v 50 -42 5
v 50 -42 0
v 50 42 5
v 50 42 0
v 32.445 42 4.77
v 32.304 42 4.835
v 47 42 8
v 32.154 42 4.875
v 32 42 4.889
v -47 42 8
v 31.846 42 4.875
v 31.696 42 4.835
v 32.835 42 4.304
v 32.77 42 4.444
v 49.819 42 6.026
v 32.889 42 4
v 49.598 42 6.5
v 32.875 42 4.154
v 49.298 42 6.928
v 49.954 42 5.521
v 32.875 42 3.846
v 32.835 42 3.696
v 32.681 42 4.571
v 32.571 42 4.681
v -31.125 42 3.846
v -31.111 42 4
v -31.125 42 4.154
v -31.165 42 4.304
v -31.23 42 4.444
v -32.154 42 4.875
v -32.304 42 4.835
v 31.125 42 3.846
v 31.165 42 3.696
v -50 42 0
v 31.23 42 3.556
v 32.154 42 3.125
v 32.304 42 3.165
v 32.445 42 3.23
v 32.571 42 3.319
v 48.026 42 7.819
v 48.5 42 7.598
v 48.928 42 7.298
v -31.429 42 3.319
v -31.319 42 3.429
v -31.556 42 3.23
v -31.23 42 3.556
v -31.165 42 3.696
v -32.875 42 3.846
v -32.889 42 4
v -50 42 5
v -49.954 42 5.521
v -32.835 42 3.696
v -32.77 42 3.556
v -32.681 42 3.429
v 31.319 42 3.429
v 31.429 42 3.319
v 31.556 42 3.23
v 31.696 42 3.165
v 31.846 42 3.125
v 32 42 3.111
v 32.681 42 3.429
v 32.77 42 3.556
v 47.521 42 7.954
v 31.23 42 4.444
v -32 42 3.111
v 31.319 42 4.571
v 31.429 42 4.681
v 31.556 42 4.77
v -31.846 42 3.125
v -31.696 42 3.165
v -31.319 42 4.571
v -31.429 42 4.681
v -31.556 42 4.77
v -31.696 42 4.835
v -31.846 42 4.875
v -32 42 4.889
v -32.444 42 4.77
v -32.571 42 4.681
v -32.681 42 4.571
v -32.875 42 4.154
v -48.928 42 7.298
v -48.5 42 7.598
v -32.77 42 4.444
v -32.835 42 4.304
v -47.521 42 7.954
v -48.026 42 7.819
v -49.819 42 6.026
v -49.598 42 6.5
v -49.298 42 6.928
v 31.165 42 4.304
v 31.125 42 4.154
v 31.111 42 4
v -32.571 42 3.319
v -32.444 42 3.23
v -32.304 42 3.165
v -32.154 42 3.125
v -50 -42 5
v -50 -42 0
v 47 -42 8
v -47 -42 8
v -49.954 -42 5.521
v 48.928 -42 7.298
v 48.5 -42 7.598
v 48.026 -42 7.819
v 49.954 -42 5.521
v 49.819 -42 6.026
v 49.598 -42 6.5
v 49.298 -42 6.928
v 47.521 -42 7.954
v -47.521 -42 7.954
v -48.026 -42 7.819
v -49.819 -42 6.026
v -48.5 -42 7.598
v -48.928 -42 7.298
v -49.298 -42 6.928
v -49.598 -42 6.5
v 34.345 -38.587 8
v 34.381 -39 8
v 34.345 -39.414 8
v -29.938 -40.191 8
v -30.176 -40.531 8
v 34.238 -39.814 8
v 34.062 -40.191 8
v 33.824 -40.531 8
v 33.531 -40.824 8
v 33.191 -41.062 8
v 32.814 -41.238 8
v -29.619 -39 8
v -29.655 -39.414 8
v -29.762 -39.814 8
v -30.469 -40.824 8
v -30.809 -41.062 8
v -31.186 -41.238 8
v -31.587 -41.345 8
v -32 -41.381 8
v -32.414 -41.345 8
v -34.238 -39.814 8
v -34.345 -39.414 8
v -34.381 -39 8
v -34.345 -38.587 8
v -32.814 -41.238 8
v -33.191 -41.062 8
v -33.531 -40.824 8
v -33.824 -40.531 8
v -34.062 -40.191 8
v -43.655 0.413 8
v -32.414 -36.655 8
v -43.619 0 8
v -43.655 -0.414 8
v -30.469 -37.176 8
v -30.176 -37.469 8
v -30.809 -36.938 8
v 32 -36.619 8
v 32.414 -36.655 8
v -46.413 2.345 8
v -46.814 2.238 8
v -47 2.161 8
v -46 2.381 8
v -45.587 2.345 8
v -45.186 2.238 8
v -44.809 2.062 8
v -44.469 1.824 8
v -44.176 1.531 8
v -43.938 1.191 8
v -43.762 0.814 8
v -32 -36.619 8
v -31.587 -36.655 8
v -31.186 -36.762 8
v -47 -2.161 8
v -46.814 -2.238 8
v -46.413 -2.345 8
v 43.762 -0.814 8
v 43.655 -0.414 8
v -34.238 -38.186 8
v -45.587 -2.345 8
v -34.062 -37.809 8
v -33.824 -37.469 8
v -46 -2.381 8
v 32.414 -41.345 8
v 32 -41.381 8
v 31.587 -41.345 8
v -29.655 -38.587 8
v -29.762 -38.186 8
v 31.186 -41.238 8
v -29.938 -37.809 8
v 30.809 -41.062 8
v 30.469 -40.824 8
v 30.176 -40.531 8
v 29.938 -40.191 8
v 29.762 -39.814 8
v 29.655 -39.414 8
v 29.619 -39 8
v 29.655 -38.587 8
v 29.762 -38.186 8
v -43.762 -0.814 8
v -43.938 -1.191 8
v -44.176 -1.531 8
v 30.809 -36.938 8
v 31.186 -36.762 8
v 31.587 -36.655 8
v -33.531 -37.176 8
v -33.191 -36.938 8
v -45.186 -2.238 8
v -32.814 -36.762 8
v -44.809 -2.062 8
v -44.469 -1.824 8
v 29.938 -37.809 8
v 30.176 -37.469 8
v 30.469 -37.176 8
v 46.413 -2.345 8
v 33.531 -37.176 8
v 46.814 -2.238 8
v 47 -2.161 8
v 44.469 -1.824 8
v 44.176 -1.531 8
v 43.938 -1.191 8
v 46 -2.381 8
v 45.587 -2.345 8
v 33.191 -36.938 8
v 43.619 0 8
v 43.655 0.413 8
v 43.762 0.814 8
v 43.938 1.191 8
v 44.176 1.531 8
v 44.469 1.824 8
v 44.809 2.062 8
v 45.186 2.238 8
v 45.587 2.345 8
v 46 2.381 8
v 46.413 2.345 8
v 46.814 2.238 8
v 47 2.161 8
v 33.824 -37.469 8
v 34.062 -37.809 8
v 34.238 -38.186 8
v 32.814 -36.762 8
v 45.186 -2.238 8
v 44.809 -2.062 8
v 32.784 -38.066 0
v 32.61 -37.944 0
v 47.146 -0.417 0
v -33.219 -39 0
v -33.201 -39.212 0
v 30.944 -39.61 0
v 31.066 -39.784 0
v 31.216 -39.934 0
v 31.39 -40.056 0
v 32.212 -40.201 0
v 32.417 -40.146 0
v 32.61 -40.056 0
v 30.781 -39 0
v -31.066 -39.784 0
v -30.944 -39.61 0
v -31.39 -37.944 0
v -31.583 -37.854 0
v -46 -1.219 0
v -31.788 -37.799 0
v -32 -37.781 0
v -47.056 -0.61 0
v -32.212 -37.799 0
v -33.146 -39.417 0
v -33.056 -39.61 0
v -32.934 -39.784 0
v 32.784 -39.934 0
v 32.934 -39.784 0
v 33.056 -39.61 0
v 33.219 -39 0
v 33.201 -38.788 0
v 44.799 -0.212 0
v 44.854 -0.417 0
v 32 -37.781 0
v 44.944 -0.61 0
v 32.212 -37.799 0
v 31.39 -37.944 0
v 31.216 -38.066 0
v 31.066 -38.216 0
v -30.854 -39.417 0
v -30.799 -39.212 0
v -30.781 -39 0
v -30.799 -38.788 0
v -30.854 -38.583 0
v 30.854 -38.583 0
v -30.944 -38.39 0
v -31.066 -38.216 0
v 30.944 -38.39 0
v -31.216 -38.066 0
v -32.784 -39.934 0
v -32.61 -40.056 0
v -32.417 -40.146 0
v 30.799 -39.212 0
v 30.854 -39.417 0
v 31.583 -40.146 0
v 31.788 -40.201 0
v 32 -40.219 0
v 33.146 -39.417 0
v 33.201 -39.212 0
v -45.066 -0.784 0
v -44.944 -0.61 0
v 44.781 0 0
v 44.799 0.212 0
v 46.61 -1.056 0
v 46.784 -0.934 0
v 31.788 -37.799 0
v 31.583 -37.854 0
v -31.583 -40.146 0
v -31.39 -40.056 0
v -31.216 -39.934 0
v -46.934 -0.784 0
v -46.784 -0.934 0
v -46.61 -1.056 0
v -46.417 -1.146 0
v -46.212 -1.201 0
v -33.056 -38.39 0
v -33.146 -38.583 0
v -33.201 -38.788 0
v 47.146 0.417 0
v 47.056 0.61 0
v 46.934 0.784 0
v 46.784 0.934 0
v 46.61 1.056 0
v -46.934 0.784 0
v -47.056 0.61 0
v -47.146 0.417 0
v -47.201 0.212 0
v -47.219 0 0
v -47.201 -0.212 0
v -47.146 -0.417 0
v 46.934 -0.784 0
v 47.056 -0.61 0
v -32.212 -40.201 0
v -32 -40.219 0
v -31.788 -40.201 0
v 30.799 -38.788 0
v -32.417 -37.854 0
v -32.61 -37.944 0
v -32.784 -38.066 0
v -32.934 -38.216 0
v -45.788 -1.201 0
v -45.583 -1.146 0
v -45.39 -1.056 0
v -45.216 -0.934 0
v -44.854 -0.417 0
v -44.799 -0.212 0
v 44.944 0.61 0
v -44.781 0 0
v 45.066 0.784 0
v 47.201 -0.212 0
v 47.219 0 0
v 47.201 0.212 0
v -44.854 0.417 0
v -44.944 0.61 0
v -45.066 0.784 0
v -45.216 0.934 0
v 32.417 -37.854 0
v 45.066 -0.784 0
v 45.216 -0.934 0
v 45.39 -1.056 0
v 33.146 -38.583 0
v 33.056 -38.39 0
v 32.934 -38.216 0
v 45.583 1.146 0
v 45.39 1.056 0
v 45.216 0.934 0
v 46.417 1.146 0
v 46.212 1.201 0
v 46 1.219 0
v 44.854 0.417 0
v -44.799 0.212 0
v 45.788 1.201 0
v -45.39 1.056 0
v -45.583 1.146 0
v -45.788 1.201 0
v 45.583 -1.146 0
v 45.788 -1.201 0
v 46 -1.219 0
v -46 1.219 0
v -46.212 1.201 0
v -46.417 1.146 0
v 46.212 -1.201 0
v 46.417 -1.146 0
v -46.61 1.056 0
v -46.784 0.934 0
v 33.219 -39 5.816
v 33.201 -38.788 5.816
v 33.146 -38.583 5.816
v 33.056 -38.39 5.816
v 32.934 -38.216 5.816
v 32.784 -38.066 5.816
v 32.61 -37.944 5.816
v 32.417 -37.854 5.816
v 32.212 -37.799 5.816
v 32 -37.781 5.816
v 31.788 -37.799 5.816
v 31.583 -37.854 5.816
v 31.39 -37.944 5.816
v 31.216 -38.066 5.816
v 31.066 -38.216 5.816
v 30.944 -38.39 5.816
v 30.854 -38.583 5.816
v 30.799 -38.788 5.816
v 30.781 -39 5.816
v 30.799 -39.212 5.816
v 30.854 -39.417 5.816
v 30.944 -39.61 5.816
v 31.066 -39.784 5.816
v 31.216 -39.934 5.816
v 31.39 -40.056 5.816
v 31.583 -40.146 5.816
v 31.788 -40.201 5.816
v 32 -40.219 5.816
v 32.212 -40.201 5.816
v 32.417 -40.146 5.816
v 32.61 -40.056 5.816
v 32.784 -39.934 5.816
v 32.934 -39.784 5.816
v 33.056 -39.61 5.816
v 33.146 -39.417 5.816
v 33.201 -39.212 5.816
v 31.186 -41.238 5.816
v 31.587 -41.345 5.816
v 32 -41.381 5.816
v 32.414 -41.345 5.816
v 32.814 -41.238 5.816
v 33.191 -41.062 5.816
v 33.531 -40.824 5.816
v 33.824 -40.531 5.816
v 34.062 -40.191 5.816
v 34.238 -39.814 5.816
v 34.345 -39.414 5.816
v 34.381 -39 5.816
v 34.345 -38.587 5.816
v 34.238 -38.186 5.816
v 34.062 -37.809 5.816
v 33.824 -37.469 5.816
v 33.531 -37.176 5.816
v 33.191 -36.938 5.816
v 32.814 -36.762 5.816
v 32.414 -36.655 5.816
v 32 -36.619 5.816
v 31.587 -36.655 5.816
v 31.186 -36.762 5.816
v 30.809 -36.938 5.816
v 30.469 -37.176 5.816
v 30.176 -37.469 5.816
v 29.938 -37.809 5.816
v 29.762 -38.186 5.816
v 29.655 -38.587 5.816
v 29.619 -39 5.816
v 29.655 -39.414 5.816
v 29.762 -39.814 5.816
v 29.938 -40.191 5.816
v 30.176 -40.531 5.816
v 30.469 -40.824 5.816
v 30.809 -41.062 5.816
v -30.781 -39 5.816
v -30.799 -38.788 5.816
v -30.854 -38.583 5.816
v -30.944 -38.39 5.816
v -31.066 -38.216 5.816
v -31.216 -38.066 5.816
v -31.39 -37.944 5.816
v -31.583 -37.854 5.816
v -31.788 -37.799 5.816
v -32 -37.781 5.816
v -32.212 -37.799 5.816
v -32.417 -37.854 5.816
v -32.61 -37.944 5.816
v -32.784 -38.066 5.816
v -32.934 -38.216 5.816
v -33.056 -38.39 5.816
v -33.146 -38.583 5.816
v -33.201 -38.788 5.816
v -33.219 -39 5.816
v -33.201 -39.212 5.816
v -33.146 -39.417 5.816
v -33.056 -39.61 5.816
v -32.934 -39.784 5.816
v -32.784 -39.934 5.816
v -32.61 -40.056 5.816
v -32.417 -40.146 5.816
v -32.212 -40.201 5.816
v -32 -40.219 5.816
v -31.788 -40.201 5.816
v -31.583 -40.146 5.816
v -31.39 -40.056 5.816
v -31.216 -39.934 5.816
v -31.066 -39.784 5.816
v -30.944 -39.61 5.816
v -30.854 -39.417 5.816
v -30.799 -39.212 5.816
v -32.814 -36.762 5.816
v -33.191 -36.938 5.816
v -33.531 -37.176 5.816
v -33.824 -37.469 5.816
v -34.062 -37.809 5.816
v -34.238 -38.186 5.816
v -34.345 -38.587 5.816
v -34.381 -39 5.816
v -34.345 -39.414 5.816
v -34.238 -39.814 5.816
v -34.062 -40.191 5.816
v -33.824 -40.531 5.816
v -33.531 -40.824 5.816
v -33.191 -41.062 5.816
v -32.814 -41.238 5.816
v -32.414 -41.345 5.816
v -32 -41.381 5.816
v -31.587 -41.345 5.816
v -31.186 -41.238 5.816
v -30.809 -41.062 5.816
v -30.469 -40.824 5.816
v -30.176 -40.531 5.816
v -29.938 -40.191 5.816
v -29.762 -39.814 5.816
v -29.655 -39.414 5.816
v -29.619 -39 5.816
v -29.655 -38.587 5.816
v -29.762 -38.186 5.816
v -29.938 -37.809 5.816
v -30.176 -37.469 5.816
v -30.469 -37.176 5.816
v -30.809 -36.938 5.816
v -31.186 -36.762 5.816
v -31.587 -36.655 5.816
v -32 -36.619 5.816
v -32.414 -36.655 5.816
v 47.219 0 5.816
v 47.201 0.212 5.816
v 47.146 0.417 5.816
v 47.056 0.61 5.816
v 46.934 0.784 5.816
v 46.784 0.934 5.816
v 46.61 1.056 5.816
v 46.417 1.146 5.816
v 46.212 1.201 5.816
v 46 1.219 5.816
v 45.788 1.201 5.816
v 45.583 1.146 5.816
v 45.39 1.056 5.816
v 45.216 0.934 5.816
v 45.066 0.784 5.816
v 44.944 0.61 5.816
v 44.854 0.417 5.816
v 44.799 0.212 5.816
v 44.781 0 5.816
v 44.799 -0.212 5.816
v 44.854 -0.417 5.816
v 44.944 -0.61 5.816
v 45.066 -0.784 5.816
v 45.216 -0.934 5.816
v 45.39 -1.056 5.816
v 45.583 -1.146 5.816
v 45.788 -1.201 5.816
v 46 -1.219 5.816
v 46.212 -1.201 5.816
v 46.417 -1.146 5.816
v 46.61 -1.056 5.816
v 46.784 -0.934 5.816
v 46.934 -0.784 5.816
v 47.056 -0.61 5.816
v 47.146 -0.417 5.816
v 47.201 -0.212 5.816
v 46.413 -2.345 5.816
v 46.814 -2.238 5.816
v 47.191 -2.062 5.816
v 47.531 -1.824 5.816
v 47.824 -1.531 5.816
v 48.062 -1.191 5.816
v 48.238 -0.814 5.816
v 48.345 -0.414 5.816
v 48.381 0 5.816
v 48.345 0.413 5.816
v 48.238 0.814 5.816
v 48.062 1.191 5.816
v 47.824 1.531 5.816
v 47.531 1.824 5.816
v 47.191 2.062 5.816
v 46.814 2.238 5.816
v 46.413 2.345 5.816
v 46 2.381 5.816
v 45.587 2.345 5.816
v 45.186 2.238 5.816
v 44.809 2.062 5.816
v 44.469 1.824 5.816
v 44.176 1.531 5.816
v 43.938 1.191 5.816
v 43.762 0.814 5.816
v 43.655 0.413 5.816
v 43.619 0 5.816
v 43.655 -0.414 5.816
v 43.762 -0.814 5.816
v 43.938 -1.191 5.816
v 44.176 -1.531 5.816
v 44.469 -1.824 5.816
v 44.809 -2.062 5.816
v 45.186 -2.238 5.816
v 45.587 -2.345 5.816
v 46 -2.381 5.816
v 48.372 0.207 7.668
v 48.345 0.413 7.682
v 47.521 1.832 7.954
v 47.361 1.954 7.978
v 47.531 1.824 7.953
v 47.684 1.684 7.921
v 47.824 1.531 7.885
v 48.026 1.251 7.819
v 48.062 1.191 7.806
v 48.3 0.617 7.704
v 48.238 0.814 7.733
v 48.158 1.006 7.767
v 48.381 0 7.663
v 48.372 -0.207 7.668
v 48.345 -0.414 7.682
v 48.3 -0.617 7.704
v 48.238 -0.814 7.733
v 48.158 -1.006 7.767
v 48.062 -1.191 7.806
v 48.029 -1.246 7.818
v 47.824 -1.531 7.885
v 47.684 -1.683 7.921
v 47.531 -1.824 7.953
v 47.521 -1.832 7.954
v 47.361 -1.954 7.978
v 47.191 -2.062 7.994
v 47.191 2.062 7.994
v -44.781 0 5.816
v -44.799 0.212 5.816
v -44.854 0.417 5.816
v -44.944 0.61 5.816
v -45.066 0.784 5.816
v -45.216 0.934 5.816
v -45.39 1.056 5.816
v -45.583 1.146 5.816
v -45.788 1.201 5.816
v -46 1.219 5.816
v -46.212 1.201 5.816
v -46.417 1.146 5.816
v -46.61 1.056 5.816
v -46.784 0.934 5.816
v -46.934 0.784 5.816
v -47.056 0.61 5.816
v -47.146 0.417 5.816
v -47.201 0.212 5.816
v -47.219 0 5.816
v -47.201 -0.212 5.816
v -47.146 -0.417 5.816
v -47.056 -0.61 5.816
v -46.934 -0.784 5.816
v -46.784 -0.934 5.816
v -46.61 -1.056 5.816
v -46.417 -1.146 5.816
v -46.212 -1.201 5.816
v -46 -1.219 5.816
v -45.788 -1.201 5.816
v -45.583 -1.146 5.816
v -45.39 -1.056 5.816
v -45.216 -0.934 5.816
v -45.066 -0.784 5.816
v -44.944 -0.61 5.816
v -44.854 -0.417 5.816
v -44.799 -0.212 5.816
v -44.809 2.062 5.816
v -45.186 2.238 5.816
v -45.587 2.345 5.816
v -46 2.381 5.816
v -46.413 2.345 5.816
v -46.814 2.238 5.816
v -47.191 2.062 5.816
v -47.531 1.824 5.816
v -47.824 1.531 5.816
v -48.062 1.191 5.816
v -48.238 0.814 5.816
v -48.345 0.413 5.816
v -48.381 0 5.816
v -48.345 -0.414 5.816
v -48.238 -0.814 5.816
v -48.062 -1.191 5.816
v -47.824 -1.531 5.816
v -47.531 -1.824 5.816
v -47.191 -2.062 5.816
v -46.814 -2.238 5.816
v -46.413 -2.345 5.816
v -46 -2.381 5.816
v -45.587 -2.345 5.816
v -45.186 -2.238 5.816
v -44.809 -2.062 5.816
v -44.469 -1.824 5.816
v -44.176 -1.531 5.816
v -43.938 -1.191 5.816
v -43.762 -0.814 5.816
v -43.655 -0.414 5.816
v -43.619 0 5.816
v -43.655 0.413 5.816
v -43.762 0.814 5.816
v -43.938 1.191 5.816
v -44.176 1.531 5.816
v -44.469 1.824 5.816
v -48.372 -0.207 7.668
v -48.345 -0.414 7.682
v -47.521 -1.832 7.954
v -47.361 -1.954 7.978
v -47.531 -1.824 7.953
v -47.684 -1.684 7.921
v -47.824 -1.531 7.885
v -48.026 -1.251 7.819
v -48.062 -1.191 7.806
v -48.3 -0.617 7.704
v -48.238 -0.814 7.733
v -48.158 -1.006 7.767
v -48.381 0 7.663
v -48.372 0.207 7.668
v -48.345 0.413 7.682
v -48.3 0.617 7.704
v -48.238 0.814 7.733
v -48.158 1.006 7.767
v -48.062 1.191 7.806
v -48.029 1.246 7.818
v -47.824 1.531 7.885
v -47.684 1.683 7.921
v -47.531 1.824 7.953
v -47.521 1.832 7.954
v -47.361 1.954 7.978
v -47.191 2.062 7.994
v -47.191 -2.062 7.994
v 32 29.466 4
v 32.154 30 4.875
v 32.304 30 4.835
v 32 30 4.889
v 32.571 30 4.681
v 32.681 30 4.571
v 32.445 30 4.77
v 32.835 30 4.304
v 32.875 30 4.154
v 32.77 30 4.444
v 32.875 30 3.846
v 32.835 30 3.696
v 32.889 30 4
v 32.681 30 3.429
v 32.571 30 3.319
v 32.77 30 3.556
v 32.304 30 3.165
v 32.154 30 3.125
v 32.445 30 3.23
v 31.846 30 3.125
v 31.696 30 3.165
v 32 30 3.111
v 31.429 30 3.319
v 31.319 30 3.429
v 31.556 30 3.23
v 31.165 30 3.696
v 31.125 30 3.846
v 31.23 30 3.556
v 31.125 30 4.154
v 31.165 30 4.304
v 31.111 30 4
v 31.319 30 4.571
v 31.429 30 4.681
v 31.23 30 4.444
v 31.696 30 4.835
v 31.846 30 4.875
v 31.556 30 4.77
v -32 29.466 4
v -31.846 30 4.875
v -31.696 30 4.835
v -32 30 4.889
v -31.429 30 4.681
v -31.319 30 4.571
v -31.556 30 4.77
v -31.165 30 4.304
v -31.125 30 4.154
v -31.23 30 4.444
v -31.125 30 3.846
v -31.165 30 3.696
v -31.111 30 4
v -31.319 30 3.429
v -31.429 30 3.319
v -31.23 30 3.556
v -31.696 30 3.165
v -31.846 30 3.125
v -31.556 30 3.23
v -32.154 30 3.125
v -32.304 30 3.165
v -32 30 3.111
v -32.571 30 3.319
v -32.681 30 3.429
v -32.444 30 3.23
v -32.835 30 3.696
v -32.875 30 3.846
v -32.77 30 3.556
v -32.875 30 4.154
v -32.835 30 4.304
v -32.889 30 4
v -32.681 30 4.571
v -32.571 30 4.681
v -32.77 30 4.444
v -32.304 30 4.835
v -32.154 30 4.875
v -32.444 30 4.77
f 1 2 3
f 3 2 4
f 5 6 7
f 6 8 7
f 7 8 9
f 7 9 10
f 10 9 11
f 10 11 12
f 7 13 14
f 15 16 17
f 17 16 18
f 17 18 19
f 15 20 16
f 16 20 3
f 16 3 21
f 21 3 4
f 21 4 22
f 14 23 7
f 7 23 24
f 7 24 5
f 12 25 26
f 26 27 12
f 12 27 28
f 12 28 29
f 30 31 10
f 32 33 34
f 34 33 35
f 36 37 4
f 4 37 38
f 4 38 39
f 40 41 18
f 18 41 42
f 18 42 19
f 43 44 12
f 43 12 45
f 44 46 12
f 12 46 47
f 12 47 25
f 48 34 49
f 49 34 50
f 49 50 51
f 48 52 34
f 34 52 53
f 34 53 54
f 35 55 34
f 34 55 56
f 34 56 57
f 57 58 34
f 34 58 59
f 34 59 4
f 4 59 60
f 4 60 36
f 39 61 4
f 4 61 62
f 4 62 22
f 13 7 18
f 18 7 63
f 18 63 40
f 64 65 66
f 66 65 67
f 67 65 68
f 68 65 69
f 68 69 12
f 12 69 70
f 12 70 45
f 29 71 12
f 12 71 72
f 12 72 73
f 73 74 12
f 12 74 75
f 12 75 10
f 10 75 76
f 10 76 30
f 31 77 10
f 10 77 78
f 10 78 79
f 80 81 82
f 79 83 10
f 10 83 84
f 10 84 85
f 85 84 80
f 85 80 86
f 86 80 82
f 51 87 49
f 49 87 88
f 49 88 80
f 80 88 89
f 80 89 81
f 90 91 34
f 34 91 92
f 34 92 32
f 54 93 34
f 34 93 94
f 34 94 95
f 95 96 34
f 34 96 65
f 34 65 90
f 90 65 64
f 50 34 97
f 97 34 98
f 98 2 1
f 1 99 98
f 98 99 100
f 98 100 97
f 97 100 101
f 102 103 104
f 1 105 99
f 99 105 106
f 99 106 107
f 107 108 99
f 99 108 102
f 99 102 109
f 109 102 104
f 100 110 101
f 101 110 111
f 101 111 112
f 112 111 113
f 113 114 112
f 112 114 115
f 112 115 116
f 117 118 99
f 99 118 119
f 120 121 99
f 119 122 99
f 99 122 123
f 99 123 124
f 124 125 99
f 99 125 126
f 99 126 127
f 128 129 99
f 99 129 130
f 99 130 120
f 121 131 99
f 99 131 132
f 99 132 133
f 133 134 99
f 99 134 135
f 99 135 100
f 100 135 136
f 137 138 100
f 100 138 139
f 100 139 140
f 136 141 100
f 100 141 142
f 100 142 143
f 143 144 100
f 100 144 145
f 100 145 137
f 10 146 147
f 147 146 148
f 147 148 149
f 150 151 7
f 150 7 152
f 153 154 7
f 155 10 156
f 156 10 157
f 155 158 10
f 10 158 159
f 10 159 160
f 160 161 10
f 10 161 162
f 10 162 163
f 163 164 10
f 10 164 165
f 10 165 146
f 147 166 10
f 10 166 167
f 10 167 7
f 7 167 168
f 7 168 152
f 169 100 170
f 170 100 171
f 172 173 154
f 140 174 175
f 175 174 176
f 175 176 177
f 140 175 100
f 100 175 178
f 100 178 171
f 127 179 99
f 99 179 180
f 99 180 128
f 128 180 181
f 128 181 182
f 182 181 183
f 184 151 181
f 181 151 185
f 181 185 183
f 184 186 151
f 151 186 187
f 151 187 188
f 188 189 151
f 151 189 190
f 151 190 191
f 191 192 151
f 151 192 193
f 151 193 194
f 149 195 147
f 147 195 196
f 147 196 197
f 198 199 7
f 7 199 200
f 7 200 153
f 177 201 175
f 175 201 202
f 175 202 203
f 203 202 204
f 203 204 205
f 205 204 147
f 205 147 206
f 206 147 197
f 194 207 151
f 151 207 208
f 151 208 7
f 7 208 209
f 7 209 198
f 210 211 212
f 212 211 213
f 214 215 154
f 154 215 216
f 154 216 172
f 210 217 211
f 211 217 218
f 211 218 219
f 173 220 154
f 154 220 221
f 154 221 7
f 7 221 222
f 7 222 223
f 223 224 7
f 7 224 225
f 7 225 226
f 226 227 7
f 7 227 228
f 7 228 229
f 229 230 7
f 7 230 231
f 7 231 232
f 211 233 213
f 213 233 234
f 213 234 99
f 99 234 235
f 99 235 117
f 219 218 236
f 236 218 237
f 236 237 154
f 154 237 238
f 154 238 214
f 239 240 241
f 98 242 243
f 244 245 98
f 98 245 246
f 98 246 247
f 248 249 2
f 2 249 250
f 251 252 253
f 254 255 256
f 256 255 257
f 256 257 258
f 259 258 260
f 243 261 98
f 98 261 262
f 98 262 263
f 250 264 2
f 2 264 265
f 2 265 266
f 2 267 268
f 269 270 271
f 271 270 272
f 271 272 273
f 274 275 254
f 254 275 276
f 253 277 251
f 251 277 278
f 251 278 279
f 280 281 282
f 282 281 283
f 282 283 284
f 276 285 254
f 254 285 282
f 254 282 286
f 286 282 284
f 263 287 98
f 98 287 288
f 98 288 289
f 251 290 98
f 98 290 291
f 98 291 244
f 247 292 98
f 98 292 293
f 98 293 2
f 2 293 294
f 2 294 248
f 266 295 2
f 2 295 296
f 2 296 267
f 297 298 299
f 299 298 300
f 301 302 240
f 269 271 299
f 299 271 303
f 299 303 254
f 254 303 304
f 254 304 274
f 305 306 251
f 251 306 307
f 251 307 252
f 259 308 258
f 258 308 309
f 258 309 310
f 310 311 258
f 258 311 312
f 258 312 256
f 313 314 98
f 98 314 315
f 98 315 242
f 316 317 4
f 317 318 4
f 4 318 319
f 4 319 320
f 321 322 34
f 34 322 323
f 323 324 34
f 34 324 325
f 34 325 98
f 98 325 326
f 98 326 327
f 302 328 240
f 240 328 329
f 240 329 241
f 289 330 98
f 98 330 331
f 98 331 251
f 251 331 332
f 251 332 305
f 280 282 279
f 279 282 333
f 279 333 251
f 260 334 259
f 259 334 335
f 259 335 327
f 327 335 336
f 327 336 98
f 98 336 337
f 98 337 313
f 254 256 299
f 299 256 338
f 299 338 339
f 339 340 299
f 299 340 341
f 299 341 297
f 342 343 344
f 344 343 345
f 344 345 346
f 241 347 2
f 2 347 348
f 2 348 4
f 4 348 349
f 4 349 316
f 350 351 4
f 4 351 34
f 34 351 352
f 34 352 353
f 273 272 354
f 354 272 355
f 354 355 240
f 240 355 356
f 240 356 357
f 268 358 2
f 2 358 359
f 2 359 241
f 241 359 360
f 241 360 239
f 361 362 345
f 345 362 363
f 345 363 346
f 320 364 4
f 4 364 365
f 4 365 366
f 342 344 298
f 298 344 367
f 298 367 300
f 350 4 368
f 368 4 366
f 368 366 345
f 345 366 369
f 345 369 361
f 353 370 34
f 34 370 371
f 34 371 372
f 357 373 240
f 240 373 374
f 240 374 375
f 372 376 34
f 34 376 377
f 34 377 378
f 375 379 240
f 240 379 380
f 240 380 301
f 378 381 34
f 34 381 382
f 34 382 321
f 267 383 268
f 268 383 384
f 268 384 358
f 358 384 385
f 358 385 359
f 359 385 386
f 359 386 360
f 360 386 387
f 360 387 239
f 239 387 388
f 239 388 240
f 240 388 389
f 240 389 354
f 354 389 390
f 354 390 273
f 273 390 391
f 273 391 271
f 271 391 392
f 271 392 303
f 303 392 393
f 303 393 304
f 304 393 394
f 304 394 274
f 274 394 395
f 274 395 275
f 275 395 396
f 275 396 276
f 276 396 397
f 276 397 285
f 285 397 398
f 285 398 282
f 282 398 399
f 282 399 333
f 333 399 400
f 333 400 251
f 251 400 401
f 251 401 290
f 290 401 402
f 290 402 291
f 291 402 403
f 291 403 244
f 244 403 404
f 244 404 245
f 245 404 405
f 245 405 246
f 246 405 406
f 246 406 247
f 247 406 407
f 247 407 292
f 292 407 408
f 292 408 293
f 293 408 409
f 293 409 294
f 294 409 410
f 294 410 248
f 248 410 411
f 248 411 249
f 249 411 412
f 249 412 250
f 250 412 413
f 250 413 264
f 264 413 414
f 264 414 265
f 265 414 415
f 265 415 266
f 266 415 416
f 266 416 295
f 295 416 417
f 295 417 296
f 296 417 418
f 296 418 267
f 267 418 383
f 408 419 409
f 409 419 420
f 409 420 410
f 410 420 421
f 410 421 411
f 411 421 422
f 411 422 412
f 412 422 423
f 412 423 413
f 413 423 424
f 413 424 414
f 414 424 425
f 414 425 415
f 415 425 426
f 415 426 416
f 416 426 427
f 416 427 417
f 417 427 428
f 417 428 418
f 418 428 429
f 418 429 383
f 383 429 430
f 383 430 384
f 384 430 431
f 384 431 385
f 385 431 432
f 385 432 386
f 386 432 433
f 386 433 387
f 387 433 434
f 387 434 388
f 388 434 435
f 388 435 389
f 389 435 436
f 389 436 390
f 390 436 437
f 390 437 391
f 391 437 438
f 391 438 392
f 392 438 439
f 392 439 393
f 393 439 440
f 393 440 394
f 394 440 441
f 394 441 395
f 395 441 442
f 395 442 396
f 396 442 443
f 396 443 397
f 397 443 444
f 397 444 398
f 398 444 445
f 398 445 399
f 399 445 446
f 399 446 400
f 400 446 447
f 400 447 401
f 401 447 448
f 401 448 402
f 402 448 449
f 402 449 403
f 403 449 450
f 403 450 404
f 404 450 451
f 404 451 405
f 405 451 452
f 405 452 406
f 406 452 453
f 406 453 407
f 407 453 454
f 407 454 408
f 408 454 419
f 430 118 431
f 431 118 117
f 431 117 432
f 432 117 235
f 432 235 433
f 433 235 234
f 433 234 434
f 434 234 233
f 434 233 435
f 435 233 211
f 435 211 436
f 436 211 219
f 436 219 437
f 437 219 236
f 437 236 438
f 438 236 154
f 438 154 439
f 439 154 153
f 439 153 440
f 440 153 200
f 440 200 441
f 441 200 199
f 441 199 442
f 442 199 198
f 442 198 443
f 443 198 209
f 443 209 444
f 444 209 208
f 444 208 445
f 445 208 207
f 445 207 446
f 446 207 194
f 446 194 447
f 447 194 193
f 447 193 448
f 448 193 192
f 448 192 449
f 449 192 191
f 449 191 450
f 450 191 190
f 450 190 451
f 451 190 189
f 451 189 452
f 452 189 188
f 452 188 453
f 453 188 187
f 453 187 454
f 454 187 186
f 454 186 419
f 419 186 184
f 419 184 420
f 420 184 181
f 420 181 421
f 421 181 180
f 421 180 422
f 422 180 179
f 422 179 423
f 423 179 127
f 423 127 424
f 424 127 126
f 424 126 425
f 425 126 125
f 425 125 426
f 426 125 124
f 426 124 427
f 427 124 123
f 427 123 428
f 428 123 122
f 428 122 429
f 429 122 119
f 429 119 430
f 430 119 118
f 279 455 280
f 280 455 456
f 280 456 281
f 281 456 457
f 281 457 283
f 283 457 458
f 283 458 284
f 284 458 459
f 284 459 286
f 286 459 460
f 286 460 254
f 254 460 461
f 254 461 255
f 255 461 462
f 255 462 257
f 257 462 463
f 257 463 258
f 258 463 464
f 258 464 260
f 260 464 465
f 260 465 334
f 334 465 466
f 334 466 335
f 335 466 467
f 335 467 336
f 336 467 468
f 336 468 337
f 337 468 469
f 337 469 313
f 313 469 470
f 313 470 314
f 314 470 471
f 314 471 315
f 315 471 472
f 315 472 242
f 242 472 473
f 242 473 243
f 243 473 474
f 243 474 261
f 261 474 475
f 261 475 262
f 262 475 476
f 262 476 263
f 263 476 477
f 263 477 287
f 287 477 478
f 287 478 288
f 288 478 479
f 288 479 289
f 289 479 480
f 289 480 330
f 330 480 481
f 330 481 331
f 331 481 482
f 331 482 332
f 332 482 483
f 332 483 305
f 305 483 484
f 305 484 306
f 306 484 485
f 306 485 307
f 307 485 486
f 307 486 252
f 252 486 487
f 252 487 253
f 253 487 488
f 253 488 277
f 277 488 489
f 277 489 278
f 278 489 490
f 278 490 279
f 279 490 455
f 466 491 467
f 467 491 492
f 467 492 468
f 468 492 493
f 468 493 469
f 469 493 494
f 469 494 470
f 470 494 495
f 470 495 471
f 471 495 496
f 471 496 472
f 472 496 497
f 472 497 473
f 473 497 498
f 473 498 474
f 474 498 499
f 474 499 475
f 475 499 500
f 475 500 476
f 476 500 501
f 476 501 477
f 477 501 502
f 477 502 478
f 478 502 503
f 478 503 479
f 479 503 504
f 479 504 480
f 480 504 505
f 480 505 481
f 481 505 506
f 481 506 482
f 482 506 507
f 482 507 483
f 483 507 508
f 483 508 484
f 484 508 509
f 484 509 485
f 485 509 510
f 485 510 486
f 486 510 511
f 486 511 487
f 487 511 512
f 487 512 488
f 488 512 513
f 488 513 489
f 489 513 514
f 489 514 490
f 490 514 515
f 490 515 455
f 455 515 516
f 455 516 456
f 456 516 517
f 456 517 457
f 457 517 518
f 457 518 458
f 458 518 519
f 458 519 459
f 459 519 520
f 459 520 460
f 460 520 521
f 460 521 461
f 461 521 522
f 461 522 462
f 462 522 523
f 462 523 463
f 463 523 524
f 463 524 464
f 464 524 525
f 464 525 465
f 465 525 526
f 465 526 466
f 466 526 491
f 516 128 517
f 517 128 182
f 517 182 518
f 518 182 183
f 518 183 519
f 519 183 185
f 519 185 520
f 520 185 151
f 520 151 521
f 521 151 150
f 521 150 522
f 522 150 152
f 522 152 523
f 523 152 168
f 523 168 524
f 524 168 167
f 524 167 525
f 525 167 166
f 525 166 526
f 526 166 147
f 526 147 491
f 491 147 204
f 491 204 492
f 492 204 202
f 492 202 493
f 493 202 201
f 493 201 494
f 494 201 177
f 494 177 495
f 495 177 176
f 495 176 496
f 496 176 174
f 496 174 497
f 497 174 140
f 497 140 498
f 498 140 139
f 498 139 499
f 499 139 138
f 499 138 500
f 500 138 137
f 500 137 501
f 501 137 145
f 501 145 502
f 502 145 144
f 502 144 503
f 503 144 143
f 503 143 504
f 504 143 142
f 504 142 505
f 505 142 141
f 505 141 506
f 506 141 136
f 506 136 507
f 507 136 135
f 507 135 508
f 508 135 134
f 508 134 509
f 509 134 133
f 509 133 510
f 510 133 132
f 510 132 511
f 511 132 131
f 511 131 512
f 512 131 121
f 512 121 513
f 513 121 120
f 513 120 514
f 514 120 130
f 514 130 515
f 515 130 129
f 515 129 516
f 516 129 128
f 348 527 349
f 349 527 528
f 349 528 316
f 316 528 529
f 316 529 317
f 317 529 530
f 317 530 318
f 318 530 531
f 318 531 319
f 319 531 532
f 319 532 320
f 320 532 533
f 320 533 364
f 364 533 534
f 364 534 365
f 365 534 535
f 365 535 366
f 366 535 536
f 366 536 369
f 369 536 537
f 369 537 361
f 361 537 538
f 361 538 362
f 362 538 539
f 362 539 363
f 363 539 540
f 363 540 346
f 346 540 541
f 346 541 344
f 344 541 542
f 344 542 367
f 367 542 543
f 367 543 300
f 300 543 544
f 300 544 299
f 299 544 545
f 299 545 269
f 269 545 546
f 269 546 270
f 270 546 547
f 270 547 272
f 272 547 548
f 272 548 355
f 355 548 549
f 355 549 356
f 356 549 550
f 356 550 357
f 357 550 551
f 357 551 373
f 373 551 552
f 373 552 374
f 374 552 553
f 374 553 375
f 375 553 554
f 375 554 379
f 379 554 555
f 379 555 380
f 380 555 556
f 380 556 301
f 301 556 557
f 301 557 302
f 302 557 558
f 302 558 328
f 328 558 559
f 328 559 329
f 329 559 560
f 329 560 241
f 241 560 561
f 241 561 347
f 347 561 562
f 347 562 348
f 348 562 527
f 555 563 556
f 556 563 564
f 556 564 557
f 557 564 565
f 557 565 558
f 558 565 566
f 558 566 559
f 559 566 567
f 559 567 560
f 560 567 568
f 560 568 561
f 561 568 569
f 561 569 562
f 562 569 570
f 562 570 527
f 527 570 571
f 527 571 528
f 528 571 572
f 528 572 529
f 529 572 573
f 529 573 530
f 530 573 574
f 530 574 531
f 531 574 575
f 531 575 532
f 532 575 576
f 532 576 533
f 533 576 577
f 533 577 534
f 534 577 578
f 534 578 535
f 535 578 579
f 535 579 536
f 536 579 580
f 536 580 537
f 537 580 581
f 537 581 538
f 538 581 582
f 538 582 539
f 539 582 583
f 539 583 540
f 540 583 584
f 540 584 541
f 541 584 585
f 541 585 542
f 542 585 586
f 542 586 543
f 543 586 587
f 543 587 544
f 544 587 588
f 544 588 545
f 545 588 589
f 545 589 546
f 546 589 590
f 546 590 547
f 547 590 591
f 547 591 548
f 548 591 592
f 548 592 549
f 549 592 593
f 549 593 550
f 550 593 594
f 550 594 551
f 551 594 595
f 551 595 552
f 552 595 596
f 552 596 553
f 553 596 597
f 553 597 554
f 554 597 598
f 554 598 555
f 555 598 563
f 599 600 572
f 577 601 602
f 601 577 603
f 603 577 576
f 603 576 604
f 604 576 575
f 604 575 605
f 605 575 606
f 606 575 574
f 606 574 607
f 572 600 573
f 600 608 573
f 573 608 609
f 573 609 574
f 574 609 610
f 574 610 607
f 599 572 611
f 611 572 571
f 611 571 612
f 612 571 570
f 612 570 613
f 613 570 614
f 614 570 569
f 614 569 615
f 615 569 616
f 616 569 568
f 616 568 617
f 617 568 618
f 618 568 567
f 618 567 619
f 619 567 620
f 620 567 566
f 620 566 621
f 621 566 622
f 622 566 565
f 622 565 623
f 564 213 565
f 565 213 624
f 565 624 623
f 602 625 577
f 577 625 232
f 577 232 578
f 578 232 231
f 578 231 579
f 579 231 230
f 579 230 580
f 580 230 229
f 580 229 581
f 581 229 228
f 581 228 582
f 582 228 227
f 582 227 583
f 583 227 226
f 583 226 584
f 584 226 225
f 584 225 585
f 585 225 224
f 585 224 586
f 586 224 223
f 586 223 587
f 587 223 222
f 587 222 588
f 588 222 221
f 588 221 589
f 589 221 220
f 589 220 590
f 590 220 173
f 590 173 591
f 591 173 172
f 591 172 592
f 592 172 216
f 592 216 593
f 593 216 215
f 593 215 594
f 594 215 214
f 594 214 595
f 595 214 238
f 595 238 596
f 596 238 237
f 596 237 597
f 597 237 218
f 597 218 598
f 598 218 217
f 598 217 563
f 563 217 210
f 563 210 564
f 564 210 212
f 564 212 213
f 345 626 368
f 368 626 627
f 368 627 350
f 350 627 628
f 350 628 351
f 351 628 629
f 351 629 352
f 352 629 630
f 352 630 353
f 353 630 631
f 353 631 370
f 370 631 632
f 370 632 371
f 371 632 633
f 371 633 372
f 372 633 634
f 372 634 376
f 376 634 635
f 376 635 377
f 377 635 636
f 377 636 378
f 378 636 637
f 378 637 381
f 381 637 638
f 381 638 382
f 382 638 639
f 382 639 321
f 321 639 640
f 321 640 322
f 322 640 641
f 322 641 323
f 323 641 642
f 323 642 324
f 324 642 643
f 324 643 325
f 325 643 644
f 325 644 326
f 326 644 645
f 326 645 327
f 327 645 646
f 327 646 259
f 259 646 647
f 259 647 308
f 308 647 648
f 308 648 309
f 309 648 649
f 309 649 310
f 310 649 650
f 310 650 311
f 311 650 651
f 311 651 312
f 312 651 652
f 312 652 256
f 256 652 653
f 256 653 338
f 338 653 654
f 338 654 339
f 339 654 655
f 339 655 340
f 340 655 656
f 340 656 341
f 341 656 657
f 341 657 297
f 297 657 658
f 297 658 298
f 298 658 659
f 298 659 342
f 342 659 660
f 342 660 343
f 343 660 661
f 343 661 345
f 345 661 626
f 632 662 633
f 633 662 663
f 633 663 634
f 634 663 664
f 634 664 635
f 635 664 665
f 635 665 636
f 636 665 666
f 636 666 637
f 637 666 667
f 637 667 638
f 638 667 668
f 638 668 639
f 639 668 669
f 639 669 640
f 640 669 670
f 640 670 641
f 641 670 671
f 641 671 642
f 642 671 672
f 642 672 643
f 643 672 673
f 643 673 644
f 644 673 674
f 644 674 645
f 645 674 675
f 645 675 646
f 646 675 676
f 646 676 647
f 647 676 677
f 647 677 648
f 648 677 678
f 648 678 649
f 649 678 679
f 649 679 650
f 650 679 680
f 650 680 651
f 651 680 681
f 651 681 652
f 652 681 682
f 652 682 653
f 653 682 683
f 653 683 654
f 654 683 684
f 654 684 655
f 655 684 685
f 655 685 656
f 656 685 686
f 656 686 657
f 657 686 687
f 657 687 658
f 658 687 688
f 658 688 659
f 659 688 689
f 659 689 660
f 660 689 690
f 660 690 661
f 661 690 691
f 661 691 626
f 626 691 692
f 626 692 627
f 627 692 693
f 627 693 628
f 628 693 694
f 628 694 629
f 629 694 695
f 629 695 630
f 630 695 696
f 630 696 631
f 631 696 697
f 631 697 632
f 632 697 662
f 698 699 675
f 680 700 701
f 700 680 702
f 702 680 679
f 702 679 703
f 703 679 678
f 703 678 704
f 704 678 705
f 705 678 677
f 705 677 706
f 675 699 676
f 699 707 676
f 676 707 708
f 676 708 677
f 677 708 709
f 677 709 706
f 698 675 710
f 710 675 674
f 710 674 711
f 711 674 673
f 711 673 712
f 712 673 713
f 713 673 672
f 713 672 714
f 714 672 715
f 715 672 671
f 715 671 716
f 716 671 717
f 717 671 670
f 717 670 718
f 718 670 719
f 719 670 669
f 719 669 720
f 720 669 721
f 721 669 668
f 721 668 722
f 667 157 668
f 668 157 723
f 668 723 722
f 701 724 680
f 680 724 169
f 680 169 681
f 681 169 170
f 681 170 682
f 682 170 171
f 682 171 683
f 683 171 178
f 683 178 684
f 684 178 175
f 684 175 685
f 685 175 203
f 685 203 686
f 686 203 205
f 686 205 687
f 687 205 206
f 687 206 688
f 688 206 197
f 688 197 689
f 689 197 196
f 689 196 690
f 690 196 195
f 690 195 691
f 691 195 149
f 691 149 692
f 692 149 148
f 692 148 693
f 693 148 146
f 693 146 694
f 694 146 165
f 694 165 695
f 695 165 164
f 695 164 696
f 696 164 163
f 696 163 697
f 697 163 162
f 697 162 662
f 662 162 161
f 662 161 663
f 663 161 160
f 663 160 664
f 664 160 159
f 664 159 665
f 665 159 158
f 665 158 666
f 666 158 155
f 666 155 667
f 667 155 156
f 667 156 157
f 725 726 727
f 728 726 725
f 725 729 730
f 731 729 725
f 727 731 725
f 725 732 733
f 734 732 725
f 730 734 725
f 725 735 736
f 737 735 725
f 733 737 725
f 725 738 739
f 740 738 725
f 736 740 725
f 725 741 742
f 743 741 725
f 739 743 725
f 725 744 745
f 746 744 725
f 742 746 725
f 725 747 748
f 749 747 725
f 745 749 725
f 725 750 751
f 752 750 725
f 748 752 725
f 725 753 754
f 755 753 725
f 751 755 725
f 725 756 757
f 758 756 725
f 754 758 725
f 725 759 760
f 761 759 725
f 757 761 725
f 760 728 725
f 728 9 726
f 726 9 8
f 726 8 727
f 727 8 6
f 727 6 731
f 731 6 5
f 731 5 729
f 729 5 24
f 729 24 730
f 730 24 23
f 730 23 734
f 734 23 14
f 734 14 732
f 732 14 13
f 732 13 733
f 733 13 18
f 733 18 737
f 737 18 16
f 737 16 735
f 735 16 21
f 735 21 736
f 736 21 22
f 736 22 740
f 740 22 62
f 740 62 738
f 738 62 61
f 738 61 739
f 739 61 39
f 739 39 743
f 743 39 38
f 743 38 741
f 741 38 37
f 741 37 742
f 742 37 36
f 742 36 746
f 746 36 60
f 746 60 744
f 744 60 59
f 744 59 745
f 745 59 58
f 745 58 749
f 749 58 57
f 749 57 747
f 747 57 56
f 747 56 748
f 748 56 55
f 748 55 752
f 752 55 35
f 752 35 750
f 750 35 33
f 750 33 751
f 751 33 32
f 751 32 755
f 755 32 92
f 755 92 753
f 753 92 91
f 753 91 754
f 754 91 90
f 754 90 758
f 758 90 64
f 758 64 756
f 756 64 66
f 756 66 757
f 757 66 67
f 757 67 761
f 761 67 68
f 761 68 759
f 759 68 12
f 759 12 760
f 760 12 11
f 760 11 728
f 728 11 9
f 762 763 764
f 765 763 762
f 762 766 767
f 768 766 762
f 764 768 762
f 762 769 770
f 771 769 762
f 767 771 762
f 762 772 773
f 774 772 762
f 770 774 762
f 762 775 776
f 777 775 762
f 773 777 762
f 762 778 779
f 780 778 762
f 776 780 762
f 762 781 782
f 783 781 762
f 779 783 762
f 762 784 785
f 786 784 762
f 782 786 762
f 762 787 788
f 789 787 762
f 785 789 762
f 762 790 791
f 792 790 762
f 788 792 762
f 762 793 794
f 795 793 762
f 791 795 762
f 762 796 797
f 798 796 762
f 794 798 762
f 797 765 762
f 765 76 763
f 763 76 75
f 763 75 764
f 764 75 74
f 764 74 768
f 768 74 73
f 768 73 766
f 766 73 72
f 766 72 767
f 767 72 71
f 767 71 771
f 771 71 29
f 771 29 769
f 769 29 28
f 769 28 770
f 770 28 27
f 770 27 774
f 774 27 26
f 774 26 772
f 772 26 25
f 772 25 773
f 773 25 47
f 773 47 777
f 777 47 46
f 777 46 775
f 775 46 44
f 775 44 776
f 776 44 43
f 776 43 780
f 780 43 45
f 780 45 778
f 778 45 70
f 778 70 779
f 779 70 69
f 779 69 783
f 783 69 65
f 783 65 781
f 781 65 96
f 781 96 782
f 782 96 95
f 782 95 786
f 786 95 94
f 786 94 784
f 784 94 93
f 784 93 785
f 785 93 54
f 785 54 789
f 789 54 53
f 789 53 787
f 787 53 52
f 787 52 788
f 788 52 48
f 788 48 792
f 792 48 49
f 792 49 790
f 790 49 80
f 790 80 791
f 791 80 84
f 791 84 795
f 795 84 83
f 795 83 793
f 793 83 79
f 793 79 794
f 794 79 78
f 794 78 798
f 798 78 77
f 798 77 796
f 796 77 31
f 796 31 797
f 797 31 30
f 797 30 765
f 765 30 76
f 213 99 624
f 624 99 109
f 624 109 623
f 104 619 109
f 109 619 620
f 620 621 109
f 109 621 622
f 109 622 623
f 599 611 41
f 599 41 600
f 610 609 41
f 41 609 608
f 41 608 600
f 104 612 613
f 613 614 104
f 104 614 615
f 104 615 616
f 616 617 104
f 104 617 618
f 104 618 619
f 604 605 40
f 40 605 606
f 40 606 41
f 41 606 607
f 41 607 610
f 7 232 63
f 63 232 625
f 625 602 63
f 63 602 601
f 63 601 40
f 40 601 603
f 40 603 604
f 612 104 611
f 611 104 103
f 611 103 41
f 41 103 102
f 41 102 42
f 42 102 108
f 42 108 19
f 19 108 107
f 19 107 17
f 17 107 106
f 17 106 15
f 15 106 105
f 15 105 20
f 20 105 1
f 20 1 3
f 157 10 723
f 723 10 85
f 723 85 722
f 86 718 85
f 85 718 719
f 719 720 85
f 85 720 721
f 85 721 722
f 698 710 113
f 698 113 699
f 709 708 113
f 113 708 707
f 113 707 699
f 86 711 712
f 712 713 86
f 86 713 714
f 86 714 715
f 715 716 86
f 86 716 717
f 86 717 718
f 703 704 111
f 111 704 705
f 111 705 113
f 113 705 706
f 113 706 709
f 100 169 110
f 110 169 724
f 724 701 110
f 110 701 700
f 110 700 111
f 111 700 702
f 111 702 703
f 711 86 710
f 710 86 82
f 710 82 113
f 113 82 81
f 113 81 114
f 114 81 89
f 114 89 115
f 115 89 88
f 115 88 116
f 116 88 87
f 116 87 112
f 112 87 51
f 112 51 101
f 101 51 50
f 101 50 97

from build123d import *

# Parameters (mm, degrees)
SKETCH1_W                                      = 100
SKETCH1_H                                      = 84
BOSS_EXTRUDE1_DEPTH                            = 8
CBORE_FOR_2_SOCKET_HEAD_CAP_SCREW1_D           = 2.4384
CBORE_FOR_2_SOCKET_HEAD_CAP_SCREW1_DEPTH       = 12.27
CBORE_FOR_2_SOCKET_HEAD_CAP_SCREW1_CBORE_D     = 4.7625
CBORE_FOR_2_SOCKET_HEAD_CAP_SCREW1_CBORE_DEPTH = 2.1844
CBORE_FOR_2_SOCKET_HEAD_CAP_SCREW1_TIP         = 0.732569267
CBORE_FOR_2_SOCKET_HEAD_CAP_SCREW2_D           = 2.4384
CBORE_FOR_2_SOCKET_HEAD_CAP_SCREW2_DEPTH       = 12.27
CBORE_FOR_2_SOCKET_HEAD_CAP_SCREW2_CBORE_D     = 4.7625
CBORE_FOR_2_SOCKET_HEAD_CAP_SCREW2_CBORE_DEPTH = 2.1844
CBORE_FOR_2_SOCKET_HEAD_CAP_SCREW2_TIP         = 0.732569267
F_2_56_TAPPED_HOLE1_D                          = 1.778
F_2_56_TAPPED_HOLE1_DEPTH                      = 12
F_2_56_TAPPED_HOLE1_TIP                        = 0.53416509
FILLET1_R                                      = 3


with BuildPart() as part:
    # Sketch1 → Boss-Extrude1 (new body)
    with BuildSketch(Plane.XY):
        Rectangle(SKETCH1_W, SKETCH1_H)
    extrude(amount=BOSS_EXTRUDE1_DEPTH)

    # CBORE for #2 Socket Head Cap Screw1
    with Locations(Plane(origin=(-32, -39, 8), x_dir=(1, 0, 0), z_dir=(0, 0, 1))):
        with Locations((0, 0), (64, 0)):
            CounterBoreHole(CBORE_FOR_2_SOCKET_HEAD_CAP_SCREW1_D / 2, CBORE_FOR_2_SOCKET_HEAD_CAP_SCREW1_CBORE_D / 2, CBORE_FOR_2_SOCKET_HEAD_CAP_SCREW1_CBORE_DEPTH, depth=CBORE_FOR_2_SOCKET_HEAD_CAP_SCREW1_DEPTH)
            with Locations((0, 0, -(CBORE_FOR_2_SOCKET_HEAD_CAP_SCREW1_DEPTH + CBORE_FOR_2_SOCKET_HEAD_CAP_SCREW1_TIP / 2))):  # 118° drill point
                Cone(0, CBORE_FOR_2_SOCKET_HEAD_CAP_SCREW1_D / 2, CBORE_FOR_2_SOCKET_HEAD_CAP_SCREW1_TIP, mode=Mode.SUBTRACT)

    # CBORE for #2 Socket Head Cap Screw2
    with Locations(Plane(origin=(-46, 0, 8), x_dir=(1, 0, 0), z_dir=(0, 0, 1))):
        with Locations((0, 0), (92, 0)):
            CounterBoreHole(CBORE_FOR_2_SOCKET_HEAD_CAP_SCREW2_D / 2, CBORE_FOR_2_SOCKET_HEAD_CAP_SCREW2_CBORE_D / 2, CBORE_FOR_2_SOCKET_HEAD_CAP_SCREW2_CBORE_DEPTH, depth=CBORE_FOR_2_SOCKET_HEAD_CAP_SCREW2_DEPTH)
            with Locations((0, 0, -(CBORE_FOR_2_SOCKET_HEAD_CAP_SCREW2_DEPTH + CBORE_FOR_2_SOCKET_HEAD_CAP_SCREW2_TIP / 2))):  # 118° drill point
                Cone(0, CBORE_FOR_2_SOCKET_HEAD_CAP_SCREW2_D / 2, CBORE_FOR_2_SOCKET_HEAD_CAP_SCREW2_TIP, mode=Mode.SUBTRACT)

    # #2-56 Tapped Hole1
    with Locations(Plane(origin=(-32, 42, 4), x_dir=(0, 0, 1), z_dir=(0, 1, 0))):
        with Locations((0, 0), (0, 64)):
            Hole(F_2_56_TAPPED_HOLE1_D / 2, depth=F_2_56_TAPPED_HOLE1_DEPTH)
            with Locations((0, 0, -(F_2_56_TAPPED_HOLE1_DEPTH + F_2_56_TAPPED_HOLE1_TIP / 2))):  # 118° drill point
                Cone(0, F_2_56_TAPPED_HOLE1_D / 2, F_2_56_TAPPED_HOLE1_TIP, mode=Mode.SUBTRACT)

    # Fillet1
    # the kernel refuses this fillet: 3 mm, written as the material it takes off along each edge
    with BuildSketch(Plane(origin=(-50, -49.5, 8), x_dir=(0, 0, -1), z_dir=(0, 1, 0))) as fillet1_piece_1:
        with BuildLine():
            CenterArc((FILLET1_R, -FILLET1_R), FILLET1_R, 90, 90)
            Line((0, -FILLET1_R), (0, 0))
            Line((0, 0), (FILLET1_R, 0))
        make_face()
    extrude(amount=99, mode=Mode.SUBTRACT)
    with BuildSketch(Plane(origin=(50, 49.5, 8), x_dir=(-1, 0, 0), z_dir=(0, -1, 0))) as fillet1_piece_2:
        with BuildLine():
            CenterArc((FILLET1_R, FILLET1_R), FILLET1_R, 180, 90)
            Line((0, FILLET1_R), (0, 0))
            Line((0, 0), (FILLET1_R, 0))
        make_face()
    extrude(amount=99, mode=Mode.SUBTRACT)


solid = part.part
